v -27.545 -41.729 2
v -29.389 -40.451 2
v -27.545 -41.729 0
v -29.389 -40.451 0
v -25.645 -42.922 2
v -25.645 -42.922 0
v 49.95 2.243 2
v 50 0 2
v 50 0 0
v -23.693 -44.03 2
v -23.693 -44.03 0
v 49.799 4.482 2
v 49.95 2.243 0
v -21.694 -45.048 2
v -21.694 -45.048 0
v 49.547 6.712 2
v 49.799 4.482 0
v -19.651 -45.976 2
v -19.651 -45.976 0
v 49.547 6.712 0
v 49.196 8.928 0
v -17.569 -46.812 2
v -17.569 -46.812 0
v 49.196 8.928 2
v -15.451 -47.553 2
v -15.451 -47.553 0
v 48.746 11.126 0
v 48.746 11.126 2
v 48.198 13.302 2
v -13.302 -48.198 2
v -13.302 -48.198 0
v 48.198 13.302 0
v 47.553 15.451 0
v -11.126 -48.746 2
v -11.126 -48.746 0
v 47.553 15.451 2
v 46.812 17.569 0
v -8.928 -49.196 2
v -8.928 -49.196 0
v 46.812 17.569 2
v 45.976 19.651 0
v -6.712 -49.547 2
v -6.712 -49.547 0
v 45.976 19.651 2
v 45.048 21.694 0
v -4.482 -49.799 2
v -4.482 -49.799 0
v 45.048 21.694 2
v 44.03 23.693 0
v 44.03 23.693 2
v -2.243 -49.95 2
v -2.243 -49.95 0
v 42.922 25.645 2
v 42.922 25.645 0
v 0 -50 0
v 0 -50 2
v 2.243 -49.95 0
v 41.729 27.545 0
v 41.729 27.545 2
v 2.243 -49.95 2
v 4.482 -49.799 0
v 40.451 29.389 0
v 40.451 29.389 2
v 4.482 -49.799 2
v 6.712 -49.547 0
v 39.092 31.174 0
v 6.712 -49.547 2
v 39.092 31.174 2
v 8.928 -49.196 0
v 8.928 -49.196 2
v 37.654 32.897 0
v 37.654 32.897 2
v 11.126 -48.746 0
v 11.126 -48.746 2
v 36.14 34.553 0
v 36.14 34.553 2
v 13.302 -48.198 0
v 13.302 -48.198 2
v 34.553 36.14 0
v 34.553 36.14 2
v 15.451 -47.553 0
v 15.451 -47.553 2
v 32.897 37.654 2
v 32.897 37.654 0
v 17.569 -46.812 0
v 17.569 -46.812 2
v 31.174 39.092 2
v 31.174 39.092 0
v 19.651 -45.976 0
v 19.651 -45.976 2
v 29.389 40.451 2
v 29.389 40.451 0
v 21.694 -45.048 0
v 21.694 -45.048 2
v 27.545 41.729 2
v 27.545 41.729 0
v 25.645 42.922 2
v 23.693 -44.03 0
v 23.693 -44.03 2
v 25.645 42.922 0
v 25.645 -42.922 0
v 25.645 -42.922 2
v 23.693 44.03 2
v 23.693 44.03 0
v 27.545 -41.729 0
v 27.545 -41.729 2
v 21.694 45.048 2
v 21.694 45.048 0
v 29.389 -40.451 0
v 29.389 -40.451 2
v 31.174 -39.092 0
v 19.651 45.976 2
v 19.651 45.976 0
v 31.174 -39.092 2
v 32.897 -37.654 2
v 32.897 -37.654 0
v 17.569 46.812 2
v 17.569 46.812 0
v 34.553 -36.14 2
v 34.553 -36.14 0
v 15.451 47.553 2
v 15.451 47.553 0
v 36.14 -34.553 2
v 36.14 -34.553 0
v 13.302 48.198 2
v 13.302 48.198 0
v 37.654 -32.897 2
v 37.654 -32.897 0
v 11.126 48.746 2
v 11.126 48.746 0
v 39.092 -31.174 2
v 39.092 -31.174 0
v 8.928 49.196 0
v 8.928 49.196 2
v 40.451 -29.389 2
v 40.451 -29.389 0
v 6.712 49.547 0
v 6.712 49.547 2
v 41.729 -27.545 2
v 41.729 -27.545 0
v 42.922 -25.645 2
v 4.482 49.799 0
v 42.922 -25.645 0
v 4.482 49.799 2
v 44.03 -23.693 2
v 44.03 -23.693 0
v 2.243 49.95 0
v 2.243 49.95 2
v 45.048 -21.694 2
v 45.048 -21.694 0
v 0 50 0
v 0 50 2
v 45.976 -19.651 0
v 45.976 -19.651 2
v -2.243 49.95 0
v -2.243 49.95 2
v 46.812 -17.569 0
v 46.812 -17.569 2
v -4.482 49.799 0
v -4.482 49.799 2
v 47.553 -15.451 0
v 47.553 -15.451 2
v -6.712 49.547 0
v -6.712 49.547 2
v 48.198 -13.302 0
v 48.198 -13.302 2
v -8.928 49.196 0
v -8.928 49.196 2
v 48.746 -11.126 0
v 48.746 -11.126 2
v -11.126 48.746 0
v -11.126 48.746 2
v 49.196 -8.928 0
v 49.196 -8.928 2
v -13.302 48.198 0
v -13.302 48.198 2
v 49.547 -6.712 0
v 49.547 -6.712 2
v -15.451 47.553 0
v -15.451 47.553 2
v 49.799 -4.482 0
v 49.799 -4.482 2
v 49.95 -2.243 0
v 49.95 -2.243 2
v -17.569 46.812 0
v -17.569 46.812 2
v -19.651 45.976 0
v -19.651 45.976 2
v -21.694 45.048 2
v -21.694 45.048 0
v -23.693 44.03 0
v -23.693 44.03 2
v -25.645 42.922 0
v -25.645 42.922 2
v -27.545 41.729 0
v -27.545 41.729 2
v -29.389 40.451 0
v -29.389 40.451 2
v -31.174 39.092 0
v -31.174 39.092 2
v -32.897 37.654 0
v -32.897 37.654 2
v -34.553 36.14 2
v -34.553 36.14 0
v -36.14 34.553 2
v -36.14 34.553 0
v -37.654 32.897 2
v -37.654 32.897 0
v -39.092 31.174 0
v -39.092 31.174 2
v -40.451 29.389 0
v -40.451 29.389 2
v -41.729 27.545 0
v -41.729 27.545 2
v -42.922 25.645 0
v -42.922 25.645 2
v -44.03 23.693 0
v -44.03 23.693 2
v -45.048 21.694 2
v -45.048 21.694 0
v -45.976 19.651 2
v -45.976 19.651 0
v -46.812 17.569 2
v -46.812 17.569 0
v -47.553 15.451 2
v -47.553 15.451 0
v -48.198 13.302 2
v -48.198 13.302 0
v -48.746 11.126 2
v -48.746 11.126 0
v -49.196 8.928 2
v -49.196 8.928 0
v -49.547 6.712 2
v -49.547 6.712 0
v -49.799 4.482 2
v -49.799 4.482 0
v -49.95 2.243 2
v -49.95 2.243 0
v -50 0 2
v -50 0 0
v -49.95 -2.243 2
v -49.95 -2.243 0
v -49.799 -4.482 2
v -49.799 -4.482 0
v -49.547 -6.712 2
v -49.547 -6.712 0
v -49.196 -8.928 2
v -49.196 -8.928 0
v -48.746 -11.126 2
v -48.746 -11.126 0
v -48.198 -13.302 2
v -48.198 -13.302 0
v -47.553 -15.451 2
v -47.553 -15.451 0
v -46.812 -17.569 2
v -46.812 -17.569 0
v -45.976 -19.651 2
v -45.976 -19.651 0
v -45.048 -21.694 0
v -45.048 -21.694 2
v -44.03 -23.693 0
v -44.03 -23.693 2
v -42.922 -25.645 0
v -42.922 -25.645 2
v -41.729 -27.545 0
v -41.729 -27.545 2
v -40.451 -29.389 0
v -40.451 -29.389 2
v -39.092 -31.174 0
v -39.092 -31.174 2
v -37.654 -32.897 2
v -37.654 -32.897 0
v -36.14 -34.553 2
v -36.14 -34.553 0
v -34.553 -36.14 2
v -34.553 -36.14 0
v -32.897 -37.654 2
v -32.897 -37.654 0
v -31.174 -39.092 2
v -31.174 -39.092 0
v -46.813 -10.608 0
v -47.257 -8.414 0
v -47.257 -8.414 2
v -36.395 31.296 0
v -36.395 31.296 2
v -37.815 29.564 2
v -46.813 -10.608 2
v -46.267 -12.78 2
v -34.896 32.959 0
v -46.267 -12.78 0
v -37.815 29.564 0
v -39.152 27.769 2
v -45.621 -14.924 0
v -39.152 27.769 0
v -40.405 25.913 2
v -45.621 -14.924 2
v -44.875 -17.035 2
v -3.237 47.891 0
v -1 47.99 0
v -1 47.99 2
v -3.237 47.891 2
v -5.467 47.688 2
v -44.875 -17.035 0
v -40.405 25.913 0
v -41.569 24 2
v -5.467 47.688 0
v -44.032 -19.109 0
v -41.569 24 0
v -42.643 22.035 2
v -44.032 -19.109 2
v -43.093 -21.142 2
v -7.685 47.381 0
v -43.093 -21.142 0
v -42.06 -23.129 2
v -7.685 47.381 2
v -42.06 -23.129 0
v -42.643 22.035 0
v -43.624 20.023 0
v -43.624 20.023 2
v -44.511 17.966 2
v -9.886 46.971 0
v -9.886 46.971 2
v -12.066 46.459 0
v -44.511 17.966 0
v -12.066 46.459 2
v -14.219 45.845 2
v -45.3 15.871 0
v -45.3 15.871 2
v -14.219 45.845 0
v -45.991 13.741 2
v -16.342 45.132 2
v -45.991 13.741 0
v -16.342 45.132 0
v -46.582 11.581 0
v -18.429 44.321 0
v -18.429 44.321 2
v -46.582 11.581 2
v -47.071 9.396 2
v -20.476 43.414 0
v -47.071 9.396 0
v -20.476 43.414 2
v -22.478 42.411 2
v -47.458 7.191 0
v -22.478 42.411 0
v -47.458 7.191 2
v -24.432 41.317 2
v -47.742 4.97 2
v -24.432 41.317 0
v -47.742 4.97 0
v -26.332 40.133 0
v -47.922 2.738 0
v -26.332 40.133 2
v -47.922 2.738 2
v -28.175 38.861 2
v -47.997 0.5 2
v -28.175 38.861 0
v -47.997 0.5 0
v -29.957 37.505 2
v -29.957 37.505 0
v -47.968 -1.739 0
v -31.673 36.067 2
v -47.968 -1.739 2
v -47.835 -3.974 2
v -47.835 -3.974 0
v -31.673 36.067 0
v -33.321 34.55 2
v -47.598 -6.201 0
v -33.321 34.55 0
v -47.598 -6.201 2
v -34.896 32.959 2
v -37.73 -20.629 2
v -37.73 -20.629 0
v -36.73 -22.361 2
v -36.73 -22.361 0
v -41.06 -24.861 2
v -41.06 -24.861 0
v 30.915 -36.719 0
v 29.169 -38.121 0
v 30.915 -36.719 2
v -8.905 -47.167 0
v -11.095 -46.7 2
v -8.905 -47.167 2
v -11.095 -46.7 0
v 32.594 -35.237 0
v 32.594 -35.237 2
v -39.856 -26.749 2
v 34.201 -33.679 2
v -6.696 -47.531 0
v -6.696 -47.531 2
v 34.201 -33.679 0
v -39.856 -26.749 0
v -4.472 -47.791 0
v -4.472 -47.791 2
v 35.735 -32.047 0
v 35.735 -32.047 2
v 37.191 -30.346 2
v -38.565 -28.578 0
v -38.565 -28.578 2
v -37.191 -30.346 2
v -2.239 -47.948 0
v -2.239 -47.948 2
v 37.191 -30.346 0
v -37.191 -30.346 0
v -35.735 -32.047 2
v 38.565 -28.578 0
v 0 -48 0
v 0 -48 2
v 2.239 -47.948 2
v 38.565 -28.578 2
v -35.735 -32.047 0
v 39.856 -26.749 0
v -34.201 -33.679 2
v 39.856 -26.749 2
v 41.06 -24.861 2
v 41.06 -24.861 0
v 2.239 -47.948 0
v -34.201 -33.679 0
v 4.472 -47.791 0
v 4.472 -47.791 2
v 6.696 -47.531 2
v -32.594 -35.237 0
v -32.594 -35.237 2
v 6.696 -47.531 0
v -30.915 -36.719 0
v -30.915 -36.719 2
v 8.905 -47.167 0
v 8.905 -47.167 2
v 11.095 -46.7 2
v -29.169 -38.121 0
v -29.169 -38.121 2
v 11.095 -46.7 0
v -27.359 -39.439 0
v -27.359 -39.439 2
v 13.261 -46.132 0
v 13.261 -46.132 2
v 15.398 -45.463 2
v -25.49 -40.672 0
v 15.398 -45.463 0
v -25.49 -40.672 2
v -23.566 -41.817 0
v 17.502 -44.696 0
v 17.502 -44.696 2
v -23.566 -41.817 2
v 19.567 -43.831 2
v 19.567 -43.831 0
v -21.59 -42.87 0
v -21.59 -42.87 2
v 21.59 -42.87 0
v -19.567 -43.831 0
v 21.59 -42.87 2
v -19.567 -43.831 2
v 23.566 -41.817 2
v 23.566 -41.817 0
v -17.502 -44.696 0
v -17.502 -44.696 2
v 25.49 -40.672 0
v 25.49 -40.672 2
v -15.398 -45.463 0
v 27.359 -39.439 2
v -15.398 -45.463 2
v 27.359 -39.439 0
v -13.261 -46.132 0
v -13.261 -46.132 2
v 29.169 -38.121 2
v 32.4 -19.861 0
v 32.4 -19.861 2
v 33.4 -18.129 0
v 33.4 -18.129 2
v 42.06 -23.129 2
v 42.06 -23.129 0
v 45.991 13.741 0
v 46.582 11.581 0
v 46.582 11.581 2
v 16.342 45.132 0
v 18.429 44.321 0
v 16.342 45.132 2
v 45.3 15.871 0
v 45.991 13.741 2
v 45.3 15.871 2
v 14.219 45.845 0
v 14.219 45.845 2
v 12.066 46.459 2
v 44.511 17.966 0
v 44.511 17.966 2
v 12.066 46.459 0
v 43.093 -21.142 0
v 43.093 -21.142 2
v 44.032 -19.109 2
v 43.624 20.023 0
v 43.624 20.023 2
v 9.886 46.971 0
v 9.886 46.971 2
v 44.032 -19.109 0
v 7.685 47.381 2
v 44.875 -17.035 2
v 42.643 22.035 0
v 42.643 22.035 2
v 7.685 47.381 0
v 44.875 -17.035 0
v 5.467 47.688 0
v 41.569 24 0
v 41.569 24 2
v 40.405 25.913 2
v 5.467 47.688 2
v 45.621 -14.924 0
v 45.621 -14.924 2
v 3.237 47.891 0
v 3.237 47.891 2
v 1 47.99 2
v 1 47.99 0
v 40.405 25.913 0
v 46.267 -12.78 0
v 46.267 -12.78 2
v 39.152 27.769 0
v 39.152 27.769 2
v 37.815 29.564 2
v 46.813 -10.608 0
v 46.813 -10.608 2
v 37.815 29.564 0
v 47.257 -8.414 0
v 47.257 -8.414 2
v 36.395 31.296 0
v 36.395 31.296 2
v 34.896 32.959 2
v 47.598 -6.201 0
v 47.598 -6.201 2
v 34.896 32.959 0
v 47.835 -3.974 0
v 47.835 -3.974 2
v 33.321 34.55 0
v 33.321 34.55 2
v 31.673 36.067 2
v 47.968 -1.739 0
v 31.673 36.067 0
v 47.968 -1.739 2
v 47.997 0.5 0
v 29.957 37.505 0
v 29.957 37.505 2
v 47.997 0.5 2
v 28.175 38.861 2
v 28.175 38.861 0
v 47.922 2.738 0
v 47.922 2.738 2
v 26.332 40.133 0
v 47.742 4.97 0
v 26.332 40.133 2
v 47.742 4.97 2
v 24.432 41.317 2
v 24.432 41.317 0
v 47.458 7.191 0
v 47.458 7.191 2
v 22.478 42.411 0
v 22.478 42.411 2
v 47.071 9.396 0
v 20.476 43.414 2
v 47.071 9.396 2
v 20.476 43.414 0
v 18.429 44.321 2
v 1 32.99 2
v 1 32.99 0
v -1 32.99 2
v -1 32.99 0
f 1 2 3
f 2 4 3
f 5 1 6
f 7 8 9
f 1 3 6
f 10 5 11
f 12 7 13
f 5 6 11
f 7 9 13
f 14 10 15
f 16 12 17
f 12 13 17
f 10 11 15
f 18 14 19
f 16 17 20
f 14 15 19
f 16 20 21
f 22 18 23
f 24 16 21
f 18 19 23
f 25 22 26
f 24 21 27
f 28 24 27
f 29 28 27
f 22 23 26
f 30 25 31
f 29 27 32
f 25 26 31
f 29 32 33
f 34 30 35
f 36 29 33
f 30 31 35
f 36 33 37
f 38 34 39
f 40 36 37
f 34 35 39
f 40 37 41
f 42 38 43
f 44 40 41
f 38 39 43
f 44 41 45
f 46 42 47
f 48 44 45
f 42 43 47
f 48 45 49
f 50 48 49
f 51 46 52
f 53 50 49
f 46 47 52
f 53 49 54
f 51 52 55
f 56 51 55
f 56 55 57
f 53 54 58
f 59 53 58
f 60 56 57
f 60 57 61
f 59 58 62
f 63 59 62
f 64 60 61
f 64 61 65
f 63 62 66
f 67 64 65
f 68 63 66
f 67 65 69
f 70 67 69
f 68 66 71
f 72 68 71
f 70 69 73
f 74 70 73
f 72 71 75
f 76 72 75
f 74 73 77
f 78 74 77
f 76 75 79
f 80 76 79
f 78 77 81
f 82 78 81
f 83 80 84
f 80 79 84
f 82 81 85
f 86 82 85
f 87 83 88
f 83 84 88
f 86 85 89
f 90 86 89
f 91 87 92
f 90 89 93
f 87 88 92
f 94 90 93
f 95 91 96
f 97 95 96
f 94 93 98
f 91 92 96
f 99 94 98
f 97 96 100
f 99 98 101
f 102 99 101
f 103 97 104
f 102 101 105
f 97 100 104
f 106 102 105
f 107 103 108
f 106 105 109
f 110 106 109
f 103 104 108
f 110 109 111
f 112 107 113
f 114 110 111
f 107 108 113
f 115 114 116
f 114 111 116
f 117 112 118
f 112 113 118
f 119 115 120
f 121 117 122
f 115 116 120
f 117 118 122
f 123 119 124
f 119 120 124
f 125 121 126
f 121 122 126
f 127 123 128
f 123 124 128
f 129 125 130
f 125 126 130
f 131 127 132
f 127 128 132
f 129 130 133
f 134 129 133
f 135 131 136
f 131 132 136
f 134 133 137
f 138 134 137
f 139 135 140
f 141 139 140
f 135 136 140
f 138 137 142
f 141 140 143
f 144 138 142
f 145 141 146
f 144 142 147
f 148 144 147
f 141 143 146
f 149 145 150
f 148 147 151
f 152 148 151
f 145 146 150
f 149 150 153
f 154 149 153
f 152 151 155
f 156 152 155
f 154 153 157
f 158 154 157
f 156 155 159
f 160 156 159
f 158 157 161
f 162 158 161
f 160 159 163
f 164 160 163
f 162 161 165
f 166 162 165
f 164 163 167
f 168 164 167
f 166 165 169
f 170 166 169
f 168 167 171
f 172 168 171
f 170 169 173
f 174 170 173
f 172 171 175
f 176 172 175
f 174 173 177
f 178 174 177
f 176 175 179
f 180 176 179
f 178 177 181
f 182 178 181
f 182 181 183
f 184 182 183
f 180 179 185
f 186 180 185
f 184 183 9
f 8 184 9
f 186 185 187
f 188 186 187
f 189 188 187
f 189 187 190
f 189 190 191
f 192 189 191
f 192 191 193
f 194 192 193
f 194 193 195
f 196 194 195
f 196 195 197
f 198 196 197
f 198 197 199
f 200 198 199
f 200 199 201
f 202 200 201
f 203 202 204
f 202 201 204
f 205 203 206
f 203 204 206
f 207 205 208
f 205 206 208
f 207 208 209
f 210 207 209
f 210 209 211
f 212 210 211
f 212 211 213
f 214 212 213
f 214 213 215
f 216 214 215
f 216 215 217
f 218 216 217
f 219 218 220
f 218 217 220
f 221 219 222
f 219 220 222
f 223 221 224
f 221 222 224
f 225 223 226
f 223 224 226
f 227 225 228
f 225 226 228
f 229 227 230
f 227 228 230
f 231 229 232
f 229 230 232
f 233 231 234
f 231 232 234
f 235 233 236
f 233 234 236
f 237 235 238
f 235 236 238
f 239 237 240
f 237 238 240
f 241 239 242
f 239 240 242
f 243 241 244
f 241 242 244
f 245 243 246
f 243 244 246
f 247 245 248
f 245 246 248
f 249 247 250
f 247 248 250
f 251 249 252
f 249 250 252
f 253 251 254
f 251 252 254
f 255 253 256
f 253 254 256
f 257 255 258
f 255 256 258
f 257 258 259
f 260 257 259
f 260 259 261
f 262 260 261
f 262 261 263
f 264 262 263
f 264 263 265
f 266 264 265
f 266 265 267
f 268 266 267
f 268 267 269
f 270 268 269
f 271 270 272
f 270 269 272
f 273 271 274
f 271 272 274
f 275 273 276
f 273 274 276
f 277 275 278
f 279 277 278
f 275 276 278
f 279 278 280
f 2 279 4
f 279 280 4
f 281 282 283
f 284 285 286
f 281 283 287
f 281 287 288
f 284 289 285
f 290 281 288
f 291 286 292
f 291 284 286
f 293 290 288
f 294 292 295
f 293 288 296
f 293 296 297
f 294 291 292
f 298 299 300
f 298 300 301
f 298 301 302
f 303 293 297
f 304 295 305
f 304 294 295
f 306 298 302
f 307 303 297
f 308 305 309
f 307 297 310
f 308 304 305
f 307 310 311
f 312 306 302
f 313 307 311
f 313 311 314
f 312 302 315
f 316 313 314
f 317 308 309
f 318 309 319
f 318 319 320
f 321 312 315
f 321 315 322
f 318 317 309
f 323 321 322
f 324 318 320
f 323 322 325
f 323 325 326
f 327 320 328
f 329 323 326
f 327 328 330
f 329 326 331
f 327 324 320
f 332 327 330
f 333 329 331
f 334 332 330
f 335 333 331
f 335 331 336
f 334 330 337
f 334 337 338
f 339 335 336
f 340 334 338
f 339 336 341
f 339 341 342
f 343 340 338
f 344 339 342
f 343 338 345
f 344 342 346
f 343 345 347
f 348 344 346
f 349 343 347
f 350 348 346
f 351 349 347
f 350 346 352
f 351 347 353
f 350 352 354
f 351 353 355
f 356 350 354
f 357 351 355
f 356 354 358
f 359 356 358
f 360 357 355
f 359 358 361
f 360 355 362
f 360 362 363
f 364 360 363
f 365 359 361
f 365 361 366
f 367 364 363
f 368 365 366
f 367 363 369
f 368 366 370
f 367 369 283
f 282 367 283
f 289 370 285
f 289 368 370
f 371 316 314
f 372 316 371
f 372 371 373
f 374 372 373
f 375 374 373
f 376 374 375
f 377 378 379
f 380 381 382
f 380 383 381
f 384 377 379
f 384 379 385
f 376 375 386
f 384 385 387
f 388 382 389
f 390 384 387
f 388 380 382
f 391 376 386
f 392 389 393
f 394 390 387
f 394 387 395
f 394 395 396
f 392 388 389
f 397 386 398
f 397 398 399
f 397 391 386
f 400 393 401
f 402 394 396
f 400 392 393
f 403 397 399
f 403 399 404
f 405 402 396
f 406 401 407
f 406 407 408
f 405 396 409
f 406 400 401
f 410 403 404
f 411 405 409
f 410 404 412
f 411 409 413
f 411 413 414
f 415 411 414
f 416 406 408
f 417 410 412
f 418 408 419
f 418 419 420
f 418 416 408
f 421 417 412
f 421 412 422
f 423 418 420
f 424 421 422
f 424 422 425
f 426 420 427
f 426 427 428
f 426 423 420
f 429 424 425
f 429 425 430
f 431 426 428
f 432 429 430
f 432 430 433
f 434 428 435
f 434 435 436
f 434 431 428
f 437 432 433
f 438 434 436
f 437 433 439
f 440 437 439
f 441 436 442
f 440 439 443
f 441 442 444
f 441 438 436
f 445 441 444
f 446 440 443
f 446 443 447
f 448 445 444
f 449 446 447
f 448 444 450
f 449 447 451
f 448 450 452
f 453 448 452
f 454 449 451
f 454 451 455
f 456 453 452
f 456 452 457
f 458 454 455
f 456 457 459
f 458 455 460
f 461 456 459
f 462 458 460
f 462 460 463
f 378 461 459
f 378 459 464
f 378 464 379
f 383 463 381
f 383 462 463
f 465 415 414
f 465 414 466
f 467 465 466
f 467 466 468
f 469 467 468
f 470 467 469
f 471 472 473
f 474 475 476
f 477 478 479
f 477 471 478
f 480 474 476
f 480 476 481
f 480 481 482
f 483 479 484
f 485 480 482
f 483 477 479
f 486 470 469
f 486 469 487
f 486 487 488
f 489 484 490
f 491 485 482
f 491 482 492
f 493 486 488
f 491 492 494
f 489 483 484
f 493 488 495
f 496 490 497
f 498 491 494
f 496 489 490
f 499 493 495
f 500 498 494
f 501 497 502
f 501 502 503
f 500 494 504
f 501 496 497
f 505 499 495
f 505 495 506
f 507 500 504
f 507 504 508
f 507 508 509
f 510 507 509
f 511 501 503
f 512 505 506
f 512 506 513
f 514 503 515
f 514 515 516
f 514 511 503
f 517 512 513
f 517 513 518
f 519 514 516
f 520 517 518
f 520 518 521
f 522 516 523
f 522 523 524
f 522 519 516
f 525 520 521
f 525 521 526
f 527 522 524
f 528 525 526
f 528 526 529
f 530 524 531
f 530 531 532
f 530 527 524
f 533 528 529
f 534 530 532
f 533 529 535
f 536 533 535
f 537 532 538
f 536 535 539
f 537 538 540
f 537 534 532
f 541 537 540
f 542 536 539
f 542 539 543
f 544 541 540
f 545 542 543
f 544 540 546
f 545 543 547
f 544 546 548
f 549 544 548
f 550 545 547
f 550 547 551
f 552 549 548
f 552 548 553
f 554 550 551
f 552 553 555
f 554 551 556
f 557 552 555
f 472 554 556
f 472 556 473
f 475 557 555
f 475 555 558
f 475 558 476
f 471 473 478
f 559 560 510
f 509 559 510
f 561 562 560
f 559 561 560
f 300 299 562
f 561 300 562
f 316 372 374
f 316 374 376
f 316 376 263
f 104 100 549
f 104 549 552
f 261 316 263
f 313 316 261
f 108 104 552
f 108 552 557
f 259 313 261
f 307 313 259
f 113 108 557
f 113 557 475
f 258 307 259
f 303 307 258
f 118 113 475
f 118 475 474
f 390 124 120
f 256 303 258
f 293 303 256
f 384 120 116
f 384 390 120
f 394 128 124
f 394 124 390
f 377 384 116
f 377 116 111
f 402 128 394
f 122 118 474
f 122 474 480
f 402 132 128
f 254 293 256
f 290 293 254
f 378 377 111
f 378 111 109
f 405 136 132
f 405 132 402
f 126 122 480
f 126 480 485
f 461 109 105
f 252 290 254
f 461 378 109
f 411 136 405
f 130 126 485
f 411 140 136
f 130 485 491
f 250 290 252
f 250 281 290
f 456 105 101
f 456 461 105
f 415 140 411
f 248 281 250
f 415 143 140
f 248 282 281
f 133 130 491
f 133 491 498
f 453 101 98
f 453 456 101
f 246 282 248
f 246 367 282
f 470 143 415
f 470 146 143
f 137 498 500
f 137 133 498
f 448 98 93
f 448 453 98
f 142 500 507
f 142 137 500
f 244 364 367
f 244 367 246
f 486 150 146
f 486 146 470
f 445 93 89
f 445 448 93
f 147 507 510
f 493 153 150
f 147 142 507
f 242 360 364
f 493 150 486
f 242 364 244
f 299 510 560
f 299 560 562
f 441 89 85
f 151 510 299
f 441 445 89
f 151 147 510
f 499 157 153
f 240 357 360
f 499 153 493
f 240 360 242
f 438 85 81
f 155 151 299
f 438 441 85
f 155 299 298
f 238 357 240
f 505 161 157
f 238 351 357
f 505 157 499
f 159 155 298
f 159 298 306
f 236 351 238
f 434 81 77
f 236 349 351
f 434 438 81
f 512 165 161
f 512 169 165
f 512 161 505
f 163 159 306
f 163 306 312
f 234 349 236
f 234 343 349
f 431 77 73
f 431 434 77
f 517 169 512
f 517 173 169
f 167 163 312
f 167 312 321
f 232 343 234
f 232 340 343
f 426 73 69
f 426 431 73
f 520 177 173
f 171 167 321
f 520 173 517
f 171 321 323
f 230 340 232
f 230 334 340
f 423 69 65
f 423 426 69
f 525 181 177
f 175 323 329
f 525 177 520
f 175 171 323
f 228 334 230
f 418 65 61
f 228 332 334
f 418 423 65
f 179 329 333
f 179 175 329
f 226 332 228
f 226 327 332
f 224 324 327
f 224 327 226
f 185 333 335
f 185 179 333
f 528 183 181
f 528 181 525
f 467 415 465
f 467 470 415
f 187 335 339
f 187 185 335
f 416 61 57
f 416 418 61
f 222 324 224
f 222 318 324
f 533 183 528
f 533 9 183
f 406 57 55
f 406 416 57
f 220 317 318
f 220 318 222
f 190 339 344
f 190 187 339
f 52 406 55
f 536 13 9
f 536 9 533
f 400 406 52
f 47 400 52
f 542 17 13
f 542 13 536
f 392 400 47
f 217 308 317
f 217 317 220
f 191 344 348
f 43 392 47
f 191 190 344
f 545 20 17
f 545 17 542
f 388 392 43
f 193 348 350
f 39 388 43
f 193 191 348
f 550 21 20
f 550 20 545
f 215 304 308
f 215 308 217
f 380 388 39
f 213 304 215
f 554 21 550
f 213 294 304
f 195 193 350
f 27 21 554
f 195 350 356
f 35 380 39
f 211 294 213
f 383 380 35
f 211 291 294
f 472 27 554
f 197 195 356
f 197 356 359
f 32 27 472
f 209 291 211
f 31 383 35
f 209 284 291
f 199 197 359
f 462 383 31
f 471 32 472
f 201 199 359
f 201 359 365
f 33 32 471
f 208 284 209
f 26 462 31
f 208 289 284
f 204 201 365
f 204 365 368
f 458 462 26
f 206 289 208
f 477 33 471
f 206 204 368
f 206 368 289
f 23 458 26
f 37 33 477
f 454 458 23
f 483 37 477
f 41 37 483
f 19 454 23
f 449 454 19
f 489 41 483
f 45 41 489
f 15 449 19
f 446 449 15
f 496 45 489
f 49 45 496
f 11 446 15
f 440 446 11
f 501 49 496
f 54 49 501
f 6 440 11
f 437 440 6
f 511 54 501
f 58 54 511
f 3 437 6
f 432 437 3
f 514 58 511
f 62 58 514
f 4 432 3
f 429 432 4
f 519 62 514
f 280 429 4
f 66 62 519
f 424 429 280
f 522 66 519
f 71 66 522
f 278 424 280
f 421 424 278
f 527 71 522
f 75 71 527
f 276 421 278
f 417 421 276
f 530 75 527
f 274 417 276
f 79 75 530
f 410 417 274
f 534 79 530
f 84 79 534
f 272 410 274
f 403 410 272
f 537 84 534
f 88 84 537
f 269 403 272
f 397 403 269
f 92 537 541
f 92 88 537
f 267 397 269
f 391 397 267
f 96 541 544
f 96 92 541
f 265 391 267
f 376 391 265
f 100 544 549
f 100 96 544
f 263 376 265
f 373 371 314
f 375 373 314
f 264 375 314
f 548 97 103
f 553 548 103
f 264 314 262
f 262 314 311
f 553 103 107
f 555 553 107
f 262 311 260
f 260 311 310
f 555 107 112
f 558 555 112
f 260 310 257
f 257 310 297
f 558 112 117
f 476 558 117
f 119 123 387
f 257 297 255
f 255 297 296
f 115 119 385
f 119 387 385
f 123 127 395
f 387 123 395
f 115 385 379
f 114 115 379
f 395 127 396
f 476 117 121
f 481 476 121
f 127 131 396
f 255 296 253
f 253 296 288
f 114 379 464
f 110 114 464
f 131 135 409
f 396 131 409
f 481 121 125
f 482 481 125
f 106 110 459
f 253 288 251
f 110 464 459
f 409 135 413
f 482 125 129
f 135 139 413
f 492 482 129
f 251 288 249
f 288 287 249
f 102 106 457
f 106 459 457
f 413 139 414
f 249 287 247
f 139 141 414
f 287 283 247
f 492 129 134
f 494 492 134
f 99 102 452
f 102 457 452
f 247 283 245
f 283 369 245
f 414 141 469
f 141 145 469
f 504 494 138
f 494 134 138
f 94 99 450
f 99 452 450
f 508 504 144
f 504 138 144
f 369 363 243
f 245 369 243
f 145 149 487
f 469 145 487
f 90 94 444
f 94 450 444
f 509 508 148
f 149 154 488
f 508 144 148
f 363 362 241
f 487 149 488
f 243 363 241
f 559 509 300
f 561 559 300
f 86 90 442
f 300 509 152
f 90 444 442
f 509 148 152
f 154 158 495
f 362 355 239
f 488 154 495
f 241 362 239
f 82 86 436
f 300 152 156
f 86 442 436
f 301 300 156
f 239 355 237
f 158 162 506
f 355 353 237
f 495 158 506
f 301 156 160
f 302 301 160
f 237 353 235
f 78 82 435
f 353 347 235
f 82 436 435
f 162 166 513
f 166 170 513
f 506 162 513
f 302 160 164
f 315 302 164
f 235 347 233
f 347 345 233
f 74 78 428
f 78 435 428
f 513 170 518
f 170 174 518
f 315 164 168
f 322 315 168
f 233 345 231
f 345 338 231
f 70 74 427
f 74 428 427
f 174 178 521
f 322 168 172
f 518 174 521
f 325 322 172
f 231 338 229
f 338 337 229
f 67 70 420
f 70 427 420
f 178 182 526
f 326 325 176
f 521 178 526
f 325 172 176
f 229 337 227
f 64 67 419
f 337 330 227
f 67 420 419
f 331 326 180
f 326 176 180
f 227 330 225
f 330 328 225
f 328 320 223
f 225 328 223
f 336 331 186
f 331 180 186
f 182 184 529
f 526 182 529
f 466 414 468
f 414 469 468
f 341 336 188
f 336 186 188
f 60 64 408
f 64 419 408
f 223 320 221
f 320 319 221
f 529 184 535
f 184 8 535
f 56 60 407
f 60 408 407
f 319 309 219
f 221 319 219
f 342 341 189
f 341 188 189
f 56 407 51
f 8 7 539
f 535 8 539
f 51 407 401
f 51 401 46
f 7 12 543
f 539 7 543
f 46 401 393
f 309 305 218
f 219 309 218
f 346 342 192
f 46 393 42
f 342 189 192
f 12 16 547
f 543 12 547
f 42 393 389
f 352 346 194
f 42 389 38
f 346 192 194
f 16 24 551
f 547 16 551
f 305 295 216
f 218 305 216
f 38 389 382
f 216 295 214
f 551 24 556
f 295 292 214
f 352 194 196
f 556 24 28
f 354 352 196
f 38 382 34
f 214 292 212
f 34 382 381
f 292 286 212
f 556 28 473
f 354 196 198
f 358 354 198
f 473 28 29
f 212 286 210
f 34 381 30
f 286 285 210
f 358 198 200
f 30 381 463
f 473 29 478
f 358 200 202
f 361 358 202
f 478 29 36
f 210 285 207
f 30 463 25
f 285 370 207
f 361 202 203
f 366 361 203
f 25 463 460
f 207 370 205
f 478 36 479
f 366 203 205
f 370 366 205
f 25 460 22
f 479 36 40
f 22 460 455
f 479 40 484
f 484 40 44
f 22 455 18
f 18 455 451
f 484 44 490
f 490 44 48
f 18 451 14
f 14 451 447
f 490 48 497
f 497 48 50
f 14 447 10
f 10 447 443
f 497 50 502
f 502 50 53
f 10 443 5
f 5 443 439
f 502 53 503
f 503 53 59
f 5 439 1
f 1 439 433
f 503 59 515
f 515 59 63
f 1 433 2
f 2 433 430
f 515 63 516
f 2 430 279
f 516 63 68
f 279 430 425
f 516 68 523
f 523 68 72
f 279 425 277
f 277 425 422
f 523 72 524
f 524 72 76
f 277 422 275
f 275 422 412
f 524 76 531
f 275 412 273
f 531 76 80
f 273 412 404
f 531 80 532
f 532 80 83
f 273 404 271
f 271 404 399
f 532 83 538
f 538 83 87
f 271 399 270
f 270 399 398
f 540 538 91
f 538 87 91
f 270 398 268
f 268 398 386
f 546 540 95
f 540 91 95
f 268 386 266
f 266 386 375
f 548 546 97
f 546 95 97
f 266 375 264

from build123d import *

# Parameters (mm, degrees)
SKETCH_R  = 50
PAD_DEPTH = 2


with BuildPart() as part:
    # Sketch → Pad (new body)
    with BuildSketch(Plane.XY):
        Circle(SKETCH_R)
        with BuildLine():
            ThreePointArc((-1, 47.989582), (-41.569219, 24), (-42.060197, -23.128766))
            Line((-42.060197, -23.128766), (-37.73007, -20.628766))
            Line((-37.73007, -20.628766), (-36.73007, -22.360817))
            Line((-36.73007, -22.360817), (-41.060197, -24.860817))
            ThreePointArc((-41.060197, -24.860817), (0, -48), (41.060197, -24.860817))
            Line((41.060197, -24.860817), (32.399943, -19.860817))
            Line((32.399943, -19.860817), (33.399943, -18.128766))
            Line((33.399943, -18.128766), (42.060197, -23.128766))
            ThreePointArc((42.060197, -23.128766), (41.569219, 24), (1, 47.989582))
            Line((1, 32.989582), (1, 47.989582))
            Line((-1, 32.989582), (1, 32.989582))
            Line((-1, 47.989582), (-1, 32.989582))
        make_face(mode=Mode.SUBTRACT)
    extrude(amount=PAD_DEPTH)


solid = part.part
